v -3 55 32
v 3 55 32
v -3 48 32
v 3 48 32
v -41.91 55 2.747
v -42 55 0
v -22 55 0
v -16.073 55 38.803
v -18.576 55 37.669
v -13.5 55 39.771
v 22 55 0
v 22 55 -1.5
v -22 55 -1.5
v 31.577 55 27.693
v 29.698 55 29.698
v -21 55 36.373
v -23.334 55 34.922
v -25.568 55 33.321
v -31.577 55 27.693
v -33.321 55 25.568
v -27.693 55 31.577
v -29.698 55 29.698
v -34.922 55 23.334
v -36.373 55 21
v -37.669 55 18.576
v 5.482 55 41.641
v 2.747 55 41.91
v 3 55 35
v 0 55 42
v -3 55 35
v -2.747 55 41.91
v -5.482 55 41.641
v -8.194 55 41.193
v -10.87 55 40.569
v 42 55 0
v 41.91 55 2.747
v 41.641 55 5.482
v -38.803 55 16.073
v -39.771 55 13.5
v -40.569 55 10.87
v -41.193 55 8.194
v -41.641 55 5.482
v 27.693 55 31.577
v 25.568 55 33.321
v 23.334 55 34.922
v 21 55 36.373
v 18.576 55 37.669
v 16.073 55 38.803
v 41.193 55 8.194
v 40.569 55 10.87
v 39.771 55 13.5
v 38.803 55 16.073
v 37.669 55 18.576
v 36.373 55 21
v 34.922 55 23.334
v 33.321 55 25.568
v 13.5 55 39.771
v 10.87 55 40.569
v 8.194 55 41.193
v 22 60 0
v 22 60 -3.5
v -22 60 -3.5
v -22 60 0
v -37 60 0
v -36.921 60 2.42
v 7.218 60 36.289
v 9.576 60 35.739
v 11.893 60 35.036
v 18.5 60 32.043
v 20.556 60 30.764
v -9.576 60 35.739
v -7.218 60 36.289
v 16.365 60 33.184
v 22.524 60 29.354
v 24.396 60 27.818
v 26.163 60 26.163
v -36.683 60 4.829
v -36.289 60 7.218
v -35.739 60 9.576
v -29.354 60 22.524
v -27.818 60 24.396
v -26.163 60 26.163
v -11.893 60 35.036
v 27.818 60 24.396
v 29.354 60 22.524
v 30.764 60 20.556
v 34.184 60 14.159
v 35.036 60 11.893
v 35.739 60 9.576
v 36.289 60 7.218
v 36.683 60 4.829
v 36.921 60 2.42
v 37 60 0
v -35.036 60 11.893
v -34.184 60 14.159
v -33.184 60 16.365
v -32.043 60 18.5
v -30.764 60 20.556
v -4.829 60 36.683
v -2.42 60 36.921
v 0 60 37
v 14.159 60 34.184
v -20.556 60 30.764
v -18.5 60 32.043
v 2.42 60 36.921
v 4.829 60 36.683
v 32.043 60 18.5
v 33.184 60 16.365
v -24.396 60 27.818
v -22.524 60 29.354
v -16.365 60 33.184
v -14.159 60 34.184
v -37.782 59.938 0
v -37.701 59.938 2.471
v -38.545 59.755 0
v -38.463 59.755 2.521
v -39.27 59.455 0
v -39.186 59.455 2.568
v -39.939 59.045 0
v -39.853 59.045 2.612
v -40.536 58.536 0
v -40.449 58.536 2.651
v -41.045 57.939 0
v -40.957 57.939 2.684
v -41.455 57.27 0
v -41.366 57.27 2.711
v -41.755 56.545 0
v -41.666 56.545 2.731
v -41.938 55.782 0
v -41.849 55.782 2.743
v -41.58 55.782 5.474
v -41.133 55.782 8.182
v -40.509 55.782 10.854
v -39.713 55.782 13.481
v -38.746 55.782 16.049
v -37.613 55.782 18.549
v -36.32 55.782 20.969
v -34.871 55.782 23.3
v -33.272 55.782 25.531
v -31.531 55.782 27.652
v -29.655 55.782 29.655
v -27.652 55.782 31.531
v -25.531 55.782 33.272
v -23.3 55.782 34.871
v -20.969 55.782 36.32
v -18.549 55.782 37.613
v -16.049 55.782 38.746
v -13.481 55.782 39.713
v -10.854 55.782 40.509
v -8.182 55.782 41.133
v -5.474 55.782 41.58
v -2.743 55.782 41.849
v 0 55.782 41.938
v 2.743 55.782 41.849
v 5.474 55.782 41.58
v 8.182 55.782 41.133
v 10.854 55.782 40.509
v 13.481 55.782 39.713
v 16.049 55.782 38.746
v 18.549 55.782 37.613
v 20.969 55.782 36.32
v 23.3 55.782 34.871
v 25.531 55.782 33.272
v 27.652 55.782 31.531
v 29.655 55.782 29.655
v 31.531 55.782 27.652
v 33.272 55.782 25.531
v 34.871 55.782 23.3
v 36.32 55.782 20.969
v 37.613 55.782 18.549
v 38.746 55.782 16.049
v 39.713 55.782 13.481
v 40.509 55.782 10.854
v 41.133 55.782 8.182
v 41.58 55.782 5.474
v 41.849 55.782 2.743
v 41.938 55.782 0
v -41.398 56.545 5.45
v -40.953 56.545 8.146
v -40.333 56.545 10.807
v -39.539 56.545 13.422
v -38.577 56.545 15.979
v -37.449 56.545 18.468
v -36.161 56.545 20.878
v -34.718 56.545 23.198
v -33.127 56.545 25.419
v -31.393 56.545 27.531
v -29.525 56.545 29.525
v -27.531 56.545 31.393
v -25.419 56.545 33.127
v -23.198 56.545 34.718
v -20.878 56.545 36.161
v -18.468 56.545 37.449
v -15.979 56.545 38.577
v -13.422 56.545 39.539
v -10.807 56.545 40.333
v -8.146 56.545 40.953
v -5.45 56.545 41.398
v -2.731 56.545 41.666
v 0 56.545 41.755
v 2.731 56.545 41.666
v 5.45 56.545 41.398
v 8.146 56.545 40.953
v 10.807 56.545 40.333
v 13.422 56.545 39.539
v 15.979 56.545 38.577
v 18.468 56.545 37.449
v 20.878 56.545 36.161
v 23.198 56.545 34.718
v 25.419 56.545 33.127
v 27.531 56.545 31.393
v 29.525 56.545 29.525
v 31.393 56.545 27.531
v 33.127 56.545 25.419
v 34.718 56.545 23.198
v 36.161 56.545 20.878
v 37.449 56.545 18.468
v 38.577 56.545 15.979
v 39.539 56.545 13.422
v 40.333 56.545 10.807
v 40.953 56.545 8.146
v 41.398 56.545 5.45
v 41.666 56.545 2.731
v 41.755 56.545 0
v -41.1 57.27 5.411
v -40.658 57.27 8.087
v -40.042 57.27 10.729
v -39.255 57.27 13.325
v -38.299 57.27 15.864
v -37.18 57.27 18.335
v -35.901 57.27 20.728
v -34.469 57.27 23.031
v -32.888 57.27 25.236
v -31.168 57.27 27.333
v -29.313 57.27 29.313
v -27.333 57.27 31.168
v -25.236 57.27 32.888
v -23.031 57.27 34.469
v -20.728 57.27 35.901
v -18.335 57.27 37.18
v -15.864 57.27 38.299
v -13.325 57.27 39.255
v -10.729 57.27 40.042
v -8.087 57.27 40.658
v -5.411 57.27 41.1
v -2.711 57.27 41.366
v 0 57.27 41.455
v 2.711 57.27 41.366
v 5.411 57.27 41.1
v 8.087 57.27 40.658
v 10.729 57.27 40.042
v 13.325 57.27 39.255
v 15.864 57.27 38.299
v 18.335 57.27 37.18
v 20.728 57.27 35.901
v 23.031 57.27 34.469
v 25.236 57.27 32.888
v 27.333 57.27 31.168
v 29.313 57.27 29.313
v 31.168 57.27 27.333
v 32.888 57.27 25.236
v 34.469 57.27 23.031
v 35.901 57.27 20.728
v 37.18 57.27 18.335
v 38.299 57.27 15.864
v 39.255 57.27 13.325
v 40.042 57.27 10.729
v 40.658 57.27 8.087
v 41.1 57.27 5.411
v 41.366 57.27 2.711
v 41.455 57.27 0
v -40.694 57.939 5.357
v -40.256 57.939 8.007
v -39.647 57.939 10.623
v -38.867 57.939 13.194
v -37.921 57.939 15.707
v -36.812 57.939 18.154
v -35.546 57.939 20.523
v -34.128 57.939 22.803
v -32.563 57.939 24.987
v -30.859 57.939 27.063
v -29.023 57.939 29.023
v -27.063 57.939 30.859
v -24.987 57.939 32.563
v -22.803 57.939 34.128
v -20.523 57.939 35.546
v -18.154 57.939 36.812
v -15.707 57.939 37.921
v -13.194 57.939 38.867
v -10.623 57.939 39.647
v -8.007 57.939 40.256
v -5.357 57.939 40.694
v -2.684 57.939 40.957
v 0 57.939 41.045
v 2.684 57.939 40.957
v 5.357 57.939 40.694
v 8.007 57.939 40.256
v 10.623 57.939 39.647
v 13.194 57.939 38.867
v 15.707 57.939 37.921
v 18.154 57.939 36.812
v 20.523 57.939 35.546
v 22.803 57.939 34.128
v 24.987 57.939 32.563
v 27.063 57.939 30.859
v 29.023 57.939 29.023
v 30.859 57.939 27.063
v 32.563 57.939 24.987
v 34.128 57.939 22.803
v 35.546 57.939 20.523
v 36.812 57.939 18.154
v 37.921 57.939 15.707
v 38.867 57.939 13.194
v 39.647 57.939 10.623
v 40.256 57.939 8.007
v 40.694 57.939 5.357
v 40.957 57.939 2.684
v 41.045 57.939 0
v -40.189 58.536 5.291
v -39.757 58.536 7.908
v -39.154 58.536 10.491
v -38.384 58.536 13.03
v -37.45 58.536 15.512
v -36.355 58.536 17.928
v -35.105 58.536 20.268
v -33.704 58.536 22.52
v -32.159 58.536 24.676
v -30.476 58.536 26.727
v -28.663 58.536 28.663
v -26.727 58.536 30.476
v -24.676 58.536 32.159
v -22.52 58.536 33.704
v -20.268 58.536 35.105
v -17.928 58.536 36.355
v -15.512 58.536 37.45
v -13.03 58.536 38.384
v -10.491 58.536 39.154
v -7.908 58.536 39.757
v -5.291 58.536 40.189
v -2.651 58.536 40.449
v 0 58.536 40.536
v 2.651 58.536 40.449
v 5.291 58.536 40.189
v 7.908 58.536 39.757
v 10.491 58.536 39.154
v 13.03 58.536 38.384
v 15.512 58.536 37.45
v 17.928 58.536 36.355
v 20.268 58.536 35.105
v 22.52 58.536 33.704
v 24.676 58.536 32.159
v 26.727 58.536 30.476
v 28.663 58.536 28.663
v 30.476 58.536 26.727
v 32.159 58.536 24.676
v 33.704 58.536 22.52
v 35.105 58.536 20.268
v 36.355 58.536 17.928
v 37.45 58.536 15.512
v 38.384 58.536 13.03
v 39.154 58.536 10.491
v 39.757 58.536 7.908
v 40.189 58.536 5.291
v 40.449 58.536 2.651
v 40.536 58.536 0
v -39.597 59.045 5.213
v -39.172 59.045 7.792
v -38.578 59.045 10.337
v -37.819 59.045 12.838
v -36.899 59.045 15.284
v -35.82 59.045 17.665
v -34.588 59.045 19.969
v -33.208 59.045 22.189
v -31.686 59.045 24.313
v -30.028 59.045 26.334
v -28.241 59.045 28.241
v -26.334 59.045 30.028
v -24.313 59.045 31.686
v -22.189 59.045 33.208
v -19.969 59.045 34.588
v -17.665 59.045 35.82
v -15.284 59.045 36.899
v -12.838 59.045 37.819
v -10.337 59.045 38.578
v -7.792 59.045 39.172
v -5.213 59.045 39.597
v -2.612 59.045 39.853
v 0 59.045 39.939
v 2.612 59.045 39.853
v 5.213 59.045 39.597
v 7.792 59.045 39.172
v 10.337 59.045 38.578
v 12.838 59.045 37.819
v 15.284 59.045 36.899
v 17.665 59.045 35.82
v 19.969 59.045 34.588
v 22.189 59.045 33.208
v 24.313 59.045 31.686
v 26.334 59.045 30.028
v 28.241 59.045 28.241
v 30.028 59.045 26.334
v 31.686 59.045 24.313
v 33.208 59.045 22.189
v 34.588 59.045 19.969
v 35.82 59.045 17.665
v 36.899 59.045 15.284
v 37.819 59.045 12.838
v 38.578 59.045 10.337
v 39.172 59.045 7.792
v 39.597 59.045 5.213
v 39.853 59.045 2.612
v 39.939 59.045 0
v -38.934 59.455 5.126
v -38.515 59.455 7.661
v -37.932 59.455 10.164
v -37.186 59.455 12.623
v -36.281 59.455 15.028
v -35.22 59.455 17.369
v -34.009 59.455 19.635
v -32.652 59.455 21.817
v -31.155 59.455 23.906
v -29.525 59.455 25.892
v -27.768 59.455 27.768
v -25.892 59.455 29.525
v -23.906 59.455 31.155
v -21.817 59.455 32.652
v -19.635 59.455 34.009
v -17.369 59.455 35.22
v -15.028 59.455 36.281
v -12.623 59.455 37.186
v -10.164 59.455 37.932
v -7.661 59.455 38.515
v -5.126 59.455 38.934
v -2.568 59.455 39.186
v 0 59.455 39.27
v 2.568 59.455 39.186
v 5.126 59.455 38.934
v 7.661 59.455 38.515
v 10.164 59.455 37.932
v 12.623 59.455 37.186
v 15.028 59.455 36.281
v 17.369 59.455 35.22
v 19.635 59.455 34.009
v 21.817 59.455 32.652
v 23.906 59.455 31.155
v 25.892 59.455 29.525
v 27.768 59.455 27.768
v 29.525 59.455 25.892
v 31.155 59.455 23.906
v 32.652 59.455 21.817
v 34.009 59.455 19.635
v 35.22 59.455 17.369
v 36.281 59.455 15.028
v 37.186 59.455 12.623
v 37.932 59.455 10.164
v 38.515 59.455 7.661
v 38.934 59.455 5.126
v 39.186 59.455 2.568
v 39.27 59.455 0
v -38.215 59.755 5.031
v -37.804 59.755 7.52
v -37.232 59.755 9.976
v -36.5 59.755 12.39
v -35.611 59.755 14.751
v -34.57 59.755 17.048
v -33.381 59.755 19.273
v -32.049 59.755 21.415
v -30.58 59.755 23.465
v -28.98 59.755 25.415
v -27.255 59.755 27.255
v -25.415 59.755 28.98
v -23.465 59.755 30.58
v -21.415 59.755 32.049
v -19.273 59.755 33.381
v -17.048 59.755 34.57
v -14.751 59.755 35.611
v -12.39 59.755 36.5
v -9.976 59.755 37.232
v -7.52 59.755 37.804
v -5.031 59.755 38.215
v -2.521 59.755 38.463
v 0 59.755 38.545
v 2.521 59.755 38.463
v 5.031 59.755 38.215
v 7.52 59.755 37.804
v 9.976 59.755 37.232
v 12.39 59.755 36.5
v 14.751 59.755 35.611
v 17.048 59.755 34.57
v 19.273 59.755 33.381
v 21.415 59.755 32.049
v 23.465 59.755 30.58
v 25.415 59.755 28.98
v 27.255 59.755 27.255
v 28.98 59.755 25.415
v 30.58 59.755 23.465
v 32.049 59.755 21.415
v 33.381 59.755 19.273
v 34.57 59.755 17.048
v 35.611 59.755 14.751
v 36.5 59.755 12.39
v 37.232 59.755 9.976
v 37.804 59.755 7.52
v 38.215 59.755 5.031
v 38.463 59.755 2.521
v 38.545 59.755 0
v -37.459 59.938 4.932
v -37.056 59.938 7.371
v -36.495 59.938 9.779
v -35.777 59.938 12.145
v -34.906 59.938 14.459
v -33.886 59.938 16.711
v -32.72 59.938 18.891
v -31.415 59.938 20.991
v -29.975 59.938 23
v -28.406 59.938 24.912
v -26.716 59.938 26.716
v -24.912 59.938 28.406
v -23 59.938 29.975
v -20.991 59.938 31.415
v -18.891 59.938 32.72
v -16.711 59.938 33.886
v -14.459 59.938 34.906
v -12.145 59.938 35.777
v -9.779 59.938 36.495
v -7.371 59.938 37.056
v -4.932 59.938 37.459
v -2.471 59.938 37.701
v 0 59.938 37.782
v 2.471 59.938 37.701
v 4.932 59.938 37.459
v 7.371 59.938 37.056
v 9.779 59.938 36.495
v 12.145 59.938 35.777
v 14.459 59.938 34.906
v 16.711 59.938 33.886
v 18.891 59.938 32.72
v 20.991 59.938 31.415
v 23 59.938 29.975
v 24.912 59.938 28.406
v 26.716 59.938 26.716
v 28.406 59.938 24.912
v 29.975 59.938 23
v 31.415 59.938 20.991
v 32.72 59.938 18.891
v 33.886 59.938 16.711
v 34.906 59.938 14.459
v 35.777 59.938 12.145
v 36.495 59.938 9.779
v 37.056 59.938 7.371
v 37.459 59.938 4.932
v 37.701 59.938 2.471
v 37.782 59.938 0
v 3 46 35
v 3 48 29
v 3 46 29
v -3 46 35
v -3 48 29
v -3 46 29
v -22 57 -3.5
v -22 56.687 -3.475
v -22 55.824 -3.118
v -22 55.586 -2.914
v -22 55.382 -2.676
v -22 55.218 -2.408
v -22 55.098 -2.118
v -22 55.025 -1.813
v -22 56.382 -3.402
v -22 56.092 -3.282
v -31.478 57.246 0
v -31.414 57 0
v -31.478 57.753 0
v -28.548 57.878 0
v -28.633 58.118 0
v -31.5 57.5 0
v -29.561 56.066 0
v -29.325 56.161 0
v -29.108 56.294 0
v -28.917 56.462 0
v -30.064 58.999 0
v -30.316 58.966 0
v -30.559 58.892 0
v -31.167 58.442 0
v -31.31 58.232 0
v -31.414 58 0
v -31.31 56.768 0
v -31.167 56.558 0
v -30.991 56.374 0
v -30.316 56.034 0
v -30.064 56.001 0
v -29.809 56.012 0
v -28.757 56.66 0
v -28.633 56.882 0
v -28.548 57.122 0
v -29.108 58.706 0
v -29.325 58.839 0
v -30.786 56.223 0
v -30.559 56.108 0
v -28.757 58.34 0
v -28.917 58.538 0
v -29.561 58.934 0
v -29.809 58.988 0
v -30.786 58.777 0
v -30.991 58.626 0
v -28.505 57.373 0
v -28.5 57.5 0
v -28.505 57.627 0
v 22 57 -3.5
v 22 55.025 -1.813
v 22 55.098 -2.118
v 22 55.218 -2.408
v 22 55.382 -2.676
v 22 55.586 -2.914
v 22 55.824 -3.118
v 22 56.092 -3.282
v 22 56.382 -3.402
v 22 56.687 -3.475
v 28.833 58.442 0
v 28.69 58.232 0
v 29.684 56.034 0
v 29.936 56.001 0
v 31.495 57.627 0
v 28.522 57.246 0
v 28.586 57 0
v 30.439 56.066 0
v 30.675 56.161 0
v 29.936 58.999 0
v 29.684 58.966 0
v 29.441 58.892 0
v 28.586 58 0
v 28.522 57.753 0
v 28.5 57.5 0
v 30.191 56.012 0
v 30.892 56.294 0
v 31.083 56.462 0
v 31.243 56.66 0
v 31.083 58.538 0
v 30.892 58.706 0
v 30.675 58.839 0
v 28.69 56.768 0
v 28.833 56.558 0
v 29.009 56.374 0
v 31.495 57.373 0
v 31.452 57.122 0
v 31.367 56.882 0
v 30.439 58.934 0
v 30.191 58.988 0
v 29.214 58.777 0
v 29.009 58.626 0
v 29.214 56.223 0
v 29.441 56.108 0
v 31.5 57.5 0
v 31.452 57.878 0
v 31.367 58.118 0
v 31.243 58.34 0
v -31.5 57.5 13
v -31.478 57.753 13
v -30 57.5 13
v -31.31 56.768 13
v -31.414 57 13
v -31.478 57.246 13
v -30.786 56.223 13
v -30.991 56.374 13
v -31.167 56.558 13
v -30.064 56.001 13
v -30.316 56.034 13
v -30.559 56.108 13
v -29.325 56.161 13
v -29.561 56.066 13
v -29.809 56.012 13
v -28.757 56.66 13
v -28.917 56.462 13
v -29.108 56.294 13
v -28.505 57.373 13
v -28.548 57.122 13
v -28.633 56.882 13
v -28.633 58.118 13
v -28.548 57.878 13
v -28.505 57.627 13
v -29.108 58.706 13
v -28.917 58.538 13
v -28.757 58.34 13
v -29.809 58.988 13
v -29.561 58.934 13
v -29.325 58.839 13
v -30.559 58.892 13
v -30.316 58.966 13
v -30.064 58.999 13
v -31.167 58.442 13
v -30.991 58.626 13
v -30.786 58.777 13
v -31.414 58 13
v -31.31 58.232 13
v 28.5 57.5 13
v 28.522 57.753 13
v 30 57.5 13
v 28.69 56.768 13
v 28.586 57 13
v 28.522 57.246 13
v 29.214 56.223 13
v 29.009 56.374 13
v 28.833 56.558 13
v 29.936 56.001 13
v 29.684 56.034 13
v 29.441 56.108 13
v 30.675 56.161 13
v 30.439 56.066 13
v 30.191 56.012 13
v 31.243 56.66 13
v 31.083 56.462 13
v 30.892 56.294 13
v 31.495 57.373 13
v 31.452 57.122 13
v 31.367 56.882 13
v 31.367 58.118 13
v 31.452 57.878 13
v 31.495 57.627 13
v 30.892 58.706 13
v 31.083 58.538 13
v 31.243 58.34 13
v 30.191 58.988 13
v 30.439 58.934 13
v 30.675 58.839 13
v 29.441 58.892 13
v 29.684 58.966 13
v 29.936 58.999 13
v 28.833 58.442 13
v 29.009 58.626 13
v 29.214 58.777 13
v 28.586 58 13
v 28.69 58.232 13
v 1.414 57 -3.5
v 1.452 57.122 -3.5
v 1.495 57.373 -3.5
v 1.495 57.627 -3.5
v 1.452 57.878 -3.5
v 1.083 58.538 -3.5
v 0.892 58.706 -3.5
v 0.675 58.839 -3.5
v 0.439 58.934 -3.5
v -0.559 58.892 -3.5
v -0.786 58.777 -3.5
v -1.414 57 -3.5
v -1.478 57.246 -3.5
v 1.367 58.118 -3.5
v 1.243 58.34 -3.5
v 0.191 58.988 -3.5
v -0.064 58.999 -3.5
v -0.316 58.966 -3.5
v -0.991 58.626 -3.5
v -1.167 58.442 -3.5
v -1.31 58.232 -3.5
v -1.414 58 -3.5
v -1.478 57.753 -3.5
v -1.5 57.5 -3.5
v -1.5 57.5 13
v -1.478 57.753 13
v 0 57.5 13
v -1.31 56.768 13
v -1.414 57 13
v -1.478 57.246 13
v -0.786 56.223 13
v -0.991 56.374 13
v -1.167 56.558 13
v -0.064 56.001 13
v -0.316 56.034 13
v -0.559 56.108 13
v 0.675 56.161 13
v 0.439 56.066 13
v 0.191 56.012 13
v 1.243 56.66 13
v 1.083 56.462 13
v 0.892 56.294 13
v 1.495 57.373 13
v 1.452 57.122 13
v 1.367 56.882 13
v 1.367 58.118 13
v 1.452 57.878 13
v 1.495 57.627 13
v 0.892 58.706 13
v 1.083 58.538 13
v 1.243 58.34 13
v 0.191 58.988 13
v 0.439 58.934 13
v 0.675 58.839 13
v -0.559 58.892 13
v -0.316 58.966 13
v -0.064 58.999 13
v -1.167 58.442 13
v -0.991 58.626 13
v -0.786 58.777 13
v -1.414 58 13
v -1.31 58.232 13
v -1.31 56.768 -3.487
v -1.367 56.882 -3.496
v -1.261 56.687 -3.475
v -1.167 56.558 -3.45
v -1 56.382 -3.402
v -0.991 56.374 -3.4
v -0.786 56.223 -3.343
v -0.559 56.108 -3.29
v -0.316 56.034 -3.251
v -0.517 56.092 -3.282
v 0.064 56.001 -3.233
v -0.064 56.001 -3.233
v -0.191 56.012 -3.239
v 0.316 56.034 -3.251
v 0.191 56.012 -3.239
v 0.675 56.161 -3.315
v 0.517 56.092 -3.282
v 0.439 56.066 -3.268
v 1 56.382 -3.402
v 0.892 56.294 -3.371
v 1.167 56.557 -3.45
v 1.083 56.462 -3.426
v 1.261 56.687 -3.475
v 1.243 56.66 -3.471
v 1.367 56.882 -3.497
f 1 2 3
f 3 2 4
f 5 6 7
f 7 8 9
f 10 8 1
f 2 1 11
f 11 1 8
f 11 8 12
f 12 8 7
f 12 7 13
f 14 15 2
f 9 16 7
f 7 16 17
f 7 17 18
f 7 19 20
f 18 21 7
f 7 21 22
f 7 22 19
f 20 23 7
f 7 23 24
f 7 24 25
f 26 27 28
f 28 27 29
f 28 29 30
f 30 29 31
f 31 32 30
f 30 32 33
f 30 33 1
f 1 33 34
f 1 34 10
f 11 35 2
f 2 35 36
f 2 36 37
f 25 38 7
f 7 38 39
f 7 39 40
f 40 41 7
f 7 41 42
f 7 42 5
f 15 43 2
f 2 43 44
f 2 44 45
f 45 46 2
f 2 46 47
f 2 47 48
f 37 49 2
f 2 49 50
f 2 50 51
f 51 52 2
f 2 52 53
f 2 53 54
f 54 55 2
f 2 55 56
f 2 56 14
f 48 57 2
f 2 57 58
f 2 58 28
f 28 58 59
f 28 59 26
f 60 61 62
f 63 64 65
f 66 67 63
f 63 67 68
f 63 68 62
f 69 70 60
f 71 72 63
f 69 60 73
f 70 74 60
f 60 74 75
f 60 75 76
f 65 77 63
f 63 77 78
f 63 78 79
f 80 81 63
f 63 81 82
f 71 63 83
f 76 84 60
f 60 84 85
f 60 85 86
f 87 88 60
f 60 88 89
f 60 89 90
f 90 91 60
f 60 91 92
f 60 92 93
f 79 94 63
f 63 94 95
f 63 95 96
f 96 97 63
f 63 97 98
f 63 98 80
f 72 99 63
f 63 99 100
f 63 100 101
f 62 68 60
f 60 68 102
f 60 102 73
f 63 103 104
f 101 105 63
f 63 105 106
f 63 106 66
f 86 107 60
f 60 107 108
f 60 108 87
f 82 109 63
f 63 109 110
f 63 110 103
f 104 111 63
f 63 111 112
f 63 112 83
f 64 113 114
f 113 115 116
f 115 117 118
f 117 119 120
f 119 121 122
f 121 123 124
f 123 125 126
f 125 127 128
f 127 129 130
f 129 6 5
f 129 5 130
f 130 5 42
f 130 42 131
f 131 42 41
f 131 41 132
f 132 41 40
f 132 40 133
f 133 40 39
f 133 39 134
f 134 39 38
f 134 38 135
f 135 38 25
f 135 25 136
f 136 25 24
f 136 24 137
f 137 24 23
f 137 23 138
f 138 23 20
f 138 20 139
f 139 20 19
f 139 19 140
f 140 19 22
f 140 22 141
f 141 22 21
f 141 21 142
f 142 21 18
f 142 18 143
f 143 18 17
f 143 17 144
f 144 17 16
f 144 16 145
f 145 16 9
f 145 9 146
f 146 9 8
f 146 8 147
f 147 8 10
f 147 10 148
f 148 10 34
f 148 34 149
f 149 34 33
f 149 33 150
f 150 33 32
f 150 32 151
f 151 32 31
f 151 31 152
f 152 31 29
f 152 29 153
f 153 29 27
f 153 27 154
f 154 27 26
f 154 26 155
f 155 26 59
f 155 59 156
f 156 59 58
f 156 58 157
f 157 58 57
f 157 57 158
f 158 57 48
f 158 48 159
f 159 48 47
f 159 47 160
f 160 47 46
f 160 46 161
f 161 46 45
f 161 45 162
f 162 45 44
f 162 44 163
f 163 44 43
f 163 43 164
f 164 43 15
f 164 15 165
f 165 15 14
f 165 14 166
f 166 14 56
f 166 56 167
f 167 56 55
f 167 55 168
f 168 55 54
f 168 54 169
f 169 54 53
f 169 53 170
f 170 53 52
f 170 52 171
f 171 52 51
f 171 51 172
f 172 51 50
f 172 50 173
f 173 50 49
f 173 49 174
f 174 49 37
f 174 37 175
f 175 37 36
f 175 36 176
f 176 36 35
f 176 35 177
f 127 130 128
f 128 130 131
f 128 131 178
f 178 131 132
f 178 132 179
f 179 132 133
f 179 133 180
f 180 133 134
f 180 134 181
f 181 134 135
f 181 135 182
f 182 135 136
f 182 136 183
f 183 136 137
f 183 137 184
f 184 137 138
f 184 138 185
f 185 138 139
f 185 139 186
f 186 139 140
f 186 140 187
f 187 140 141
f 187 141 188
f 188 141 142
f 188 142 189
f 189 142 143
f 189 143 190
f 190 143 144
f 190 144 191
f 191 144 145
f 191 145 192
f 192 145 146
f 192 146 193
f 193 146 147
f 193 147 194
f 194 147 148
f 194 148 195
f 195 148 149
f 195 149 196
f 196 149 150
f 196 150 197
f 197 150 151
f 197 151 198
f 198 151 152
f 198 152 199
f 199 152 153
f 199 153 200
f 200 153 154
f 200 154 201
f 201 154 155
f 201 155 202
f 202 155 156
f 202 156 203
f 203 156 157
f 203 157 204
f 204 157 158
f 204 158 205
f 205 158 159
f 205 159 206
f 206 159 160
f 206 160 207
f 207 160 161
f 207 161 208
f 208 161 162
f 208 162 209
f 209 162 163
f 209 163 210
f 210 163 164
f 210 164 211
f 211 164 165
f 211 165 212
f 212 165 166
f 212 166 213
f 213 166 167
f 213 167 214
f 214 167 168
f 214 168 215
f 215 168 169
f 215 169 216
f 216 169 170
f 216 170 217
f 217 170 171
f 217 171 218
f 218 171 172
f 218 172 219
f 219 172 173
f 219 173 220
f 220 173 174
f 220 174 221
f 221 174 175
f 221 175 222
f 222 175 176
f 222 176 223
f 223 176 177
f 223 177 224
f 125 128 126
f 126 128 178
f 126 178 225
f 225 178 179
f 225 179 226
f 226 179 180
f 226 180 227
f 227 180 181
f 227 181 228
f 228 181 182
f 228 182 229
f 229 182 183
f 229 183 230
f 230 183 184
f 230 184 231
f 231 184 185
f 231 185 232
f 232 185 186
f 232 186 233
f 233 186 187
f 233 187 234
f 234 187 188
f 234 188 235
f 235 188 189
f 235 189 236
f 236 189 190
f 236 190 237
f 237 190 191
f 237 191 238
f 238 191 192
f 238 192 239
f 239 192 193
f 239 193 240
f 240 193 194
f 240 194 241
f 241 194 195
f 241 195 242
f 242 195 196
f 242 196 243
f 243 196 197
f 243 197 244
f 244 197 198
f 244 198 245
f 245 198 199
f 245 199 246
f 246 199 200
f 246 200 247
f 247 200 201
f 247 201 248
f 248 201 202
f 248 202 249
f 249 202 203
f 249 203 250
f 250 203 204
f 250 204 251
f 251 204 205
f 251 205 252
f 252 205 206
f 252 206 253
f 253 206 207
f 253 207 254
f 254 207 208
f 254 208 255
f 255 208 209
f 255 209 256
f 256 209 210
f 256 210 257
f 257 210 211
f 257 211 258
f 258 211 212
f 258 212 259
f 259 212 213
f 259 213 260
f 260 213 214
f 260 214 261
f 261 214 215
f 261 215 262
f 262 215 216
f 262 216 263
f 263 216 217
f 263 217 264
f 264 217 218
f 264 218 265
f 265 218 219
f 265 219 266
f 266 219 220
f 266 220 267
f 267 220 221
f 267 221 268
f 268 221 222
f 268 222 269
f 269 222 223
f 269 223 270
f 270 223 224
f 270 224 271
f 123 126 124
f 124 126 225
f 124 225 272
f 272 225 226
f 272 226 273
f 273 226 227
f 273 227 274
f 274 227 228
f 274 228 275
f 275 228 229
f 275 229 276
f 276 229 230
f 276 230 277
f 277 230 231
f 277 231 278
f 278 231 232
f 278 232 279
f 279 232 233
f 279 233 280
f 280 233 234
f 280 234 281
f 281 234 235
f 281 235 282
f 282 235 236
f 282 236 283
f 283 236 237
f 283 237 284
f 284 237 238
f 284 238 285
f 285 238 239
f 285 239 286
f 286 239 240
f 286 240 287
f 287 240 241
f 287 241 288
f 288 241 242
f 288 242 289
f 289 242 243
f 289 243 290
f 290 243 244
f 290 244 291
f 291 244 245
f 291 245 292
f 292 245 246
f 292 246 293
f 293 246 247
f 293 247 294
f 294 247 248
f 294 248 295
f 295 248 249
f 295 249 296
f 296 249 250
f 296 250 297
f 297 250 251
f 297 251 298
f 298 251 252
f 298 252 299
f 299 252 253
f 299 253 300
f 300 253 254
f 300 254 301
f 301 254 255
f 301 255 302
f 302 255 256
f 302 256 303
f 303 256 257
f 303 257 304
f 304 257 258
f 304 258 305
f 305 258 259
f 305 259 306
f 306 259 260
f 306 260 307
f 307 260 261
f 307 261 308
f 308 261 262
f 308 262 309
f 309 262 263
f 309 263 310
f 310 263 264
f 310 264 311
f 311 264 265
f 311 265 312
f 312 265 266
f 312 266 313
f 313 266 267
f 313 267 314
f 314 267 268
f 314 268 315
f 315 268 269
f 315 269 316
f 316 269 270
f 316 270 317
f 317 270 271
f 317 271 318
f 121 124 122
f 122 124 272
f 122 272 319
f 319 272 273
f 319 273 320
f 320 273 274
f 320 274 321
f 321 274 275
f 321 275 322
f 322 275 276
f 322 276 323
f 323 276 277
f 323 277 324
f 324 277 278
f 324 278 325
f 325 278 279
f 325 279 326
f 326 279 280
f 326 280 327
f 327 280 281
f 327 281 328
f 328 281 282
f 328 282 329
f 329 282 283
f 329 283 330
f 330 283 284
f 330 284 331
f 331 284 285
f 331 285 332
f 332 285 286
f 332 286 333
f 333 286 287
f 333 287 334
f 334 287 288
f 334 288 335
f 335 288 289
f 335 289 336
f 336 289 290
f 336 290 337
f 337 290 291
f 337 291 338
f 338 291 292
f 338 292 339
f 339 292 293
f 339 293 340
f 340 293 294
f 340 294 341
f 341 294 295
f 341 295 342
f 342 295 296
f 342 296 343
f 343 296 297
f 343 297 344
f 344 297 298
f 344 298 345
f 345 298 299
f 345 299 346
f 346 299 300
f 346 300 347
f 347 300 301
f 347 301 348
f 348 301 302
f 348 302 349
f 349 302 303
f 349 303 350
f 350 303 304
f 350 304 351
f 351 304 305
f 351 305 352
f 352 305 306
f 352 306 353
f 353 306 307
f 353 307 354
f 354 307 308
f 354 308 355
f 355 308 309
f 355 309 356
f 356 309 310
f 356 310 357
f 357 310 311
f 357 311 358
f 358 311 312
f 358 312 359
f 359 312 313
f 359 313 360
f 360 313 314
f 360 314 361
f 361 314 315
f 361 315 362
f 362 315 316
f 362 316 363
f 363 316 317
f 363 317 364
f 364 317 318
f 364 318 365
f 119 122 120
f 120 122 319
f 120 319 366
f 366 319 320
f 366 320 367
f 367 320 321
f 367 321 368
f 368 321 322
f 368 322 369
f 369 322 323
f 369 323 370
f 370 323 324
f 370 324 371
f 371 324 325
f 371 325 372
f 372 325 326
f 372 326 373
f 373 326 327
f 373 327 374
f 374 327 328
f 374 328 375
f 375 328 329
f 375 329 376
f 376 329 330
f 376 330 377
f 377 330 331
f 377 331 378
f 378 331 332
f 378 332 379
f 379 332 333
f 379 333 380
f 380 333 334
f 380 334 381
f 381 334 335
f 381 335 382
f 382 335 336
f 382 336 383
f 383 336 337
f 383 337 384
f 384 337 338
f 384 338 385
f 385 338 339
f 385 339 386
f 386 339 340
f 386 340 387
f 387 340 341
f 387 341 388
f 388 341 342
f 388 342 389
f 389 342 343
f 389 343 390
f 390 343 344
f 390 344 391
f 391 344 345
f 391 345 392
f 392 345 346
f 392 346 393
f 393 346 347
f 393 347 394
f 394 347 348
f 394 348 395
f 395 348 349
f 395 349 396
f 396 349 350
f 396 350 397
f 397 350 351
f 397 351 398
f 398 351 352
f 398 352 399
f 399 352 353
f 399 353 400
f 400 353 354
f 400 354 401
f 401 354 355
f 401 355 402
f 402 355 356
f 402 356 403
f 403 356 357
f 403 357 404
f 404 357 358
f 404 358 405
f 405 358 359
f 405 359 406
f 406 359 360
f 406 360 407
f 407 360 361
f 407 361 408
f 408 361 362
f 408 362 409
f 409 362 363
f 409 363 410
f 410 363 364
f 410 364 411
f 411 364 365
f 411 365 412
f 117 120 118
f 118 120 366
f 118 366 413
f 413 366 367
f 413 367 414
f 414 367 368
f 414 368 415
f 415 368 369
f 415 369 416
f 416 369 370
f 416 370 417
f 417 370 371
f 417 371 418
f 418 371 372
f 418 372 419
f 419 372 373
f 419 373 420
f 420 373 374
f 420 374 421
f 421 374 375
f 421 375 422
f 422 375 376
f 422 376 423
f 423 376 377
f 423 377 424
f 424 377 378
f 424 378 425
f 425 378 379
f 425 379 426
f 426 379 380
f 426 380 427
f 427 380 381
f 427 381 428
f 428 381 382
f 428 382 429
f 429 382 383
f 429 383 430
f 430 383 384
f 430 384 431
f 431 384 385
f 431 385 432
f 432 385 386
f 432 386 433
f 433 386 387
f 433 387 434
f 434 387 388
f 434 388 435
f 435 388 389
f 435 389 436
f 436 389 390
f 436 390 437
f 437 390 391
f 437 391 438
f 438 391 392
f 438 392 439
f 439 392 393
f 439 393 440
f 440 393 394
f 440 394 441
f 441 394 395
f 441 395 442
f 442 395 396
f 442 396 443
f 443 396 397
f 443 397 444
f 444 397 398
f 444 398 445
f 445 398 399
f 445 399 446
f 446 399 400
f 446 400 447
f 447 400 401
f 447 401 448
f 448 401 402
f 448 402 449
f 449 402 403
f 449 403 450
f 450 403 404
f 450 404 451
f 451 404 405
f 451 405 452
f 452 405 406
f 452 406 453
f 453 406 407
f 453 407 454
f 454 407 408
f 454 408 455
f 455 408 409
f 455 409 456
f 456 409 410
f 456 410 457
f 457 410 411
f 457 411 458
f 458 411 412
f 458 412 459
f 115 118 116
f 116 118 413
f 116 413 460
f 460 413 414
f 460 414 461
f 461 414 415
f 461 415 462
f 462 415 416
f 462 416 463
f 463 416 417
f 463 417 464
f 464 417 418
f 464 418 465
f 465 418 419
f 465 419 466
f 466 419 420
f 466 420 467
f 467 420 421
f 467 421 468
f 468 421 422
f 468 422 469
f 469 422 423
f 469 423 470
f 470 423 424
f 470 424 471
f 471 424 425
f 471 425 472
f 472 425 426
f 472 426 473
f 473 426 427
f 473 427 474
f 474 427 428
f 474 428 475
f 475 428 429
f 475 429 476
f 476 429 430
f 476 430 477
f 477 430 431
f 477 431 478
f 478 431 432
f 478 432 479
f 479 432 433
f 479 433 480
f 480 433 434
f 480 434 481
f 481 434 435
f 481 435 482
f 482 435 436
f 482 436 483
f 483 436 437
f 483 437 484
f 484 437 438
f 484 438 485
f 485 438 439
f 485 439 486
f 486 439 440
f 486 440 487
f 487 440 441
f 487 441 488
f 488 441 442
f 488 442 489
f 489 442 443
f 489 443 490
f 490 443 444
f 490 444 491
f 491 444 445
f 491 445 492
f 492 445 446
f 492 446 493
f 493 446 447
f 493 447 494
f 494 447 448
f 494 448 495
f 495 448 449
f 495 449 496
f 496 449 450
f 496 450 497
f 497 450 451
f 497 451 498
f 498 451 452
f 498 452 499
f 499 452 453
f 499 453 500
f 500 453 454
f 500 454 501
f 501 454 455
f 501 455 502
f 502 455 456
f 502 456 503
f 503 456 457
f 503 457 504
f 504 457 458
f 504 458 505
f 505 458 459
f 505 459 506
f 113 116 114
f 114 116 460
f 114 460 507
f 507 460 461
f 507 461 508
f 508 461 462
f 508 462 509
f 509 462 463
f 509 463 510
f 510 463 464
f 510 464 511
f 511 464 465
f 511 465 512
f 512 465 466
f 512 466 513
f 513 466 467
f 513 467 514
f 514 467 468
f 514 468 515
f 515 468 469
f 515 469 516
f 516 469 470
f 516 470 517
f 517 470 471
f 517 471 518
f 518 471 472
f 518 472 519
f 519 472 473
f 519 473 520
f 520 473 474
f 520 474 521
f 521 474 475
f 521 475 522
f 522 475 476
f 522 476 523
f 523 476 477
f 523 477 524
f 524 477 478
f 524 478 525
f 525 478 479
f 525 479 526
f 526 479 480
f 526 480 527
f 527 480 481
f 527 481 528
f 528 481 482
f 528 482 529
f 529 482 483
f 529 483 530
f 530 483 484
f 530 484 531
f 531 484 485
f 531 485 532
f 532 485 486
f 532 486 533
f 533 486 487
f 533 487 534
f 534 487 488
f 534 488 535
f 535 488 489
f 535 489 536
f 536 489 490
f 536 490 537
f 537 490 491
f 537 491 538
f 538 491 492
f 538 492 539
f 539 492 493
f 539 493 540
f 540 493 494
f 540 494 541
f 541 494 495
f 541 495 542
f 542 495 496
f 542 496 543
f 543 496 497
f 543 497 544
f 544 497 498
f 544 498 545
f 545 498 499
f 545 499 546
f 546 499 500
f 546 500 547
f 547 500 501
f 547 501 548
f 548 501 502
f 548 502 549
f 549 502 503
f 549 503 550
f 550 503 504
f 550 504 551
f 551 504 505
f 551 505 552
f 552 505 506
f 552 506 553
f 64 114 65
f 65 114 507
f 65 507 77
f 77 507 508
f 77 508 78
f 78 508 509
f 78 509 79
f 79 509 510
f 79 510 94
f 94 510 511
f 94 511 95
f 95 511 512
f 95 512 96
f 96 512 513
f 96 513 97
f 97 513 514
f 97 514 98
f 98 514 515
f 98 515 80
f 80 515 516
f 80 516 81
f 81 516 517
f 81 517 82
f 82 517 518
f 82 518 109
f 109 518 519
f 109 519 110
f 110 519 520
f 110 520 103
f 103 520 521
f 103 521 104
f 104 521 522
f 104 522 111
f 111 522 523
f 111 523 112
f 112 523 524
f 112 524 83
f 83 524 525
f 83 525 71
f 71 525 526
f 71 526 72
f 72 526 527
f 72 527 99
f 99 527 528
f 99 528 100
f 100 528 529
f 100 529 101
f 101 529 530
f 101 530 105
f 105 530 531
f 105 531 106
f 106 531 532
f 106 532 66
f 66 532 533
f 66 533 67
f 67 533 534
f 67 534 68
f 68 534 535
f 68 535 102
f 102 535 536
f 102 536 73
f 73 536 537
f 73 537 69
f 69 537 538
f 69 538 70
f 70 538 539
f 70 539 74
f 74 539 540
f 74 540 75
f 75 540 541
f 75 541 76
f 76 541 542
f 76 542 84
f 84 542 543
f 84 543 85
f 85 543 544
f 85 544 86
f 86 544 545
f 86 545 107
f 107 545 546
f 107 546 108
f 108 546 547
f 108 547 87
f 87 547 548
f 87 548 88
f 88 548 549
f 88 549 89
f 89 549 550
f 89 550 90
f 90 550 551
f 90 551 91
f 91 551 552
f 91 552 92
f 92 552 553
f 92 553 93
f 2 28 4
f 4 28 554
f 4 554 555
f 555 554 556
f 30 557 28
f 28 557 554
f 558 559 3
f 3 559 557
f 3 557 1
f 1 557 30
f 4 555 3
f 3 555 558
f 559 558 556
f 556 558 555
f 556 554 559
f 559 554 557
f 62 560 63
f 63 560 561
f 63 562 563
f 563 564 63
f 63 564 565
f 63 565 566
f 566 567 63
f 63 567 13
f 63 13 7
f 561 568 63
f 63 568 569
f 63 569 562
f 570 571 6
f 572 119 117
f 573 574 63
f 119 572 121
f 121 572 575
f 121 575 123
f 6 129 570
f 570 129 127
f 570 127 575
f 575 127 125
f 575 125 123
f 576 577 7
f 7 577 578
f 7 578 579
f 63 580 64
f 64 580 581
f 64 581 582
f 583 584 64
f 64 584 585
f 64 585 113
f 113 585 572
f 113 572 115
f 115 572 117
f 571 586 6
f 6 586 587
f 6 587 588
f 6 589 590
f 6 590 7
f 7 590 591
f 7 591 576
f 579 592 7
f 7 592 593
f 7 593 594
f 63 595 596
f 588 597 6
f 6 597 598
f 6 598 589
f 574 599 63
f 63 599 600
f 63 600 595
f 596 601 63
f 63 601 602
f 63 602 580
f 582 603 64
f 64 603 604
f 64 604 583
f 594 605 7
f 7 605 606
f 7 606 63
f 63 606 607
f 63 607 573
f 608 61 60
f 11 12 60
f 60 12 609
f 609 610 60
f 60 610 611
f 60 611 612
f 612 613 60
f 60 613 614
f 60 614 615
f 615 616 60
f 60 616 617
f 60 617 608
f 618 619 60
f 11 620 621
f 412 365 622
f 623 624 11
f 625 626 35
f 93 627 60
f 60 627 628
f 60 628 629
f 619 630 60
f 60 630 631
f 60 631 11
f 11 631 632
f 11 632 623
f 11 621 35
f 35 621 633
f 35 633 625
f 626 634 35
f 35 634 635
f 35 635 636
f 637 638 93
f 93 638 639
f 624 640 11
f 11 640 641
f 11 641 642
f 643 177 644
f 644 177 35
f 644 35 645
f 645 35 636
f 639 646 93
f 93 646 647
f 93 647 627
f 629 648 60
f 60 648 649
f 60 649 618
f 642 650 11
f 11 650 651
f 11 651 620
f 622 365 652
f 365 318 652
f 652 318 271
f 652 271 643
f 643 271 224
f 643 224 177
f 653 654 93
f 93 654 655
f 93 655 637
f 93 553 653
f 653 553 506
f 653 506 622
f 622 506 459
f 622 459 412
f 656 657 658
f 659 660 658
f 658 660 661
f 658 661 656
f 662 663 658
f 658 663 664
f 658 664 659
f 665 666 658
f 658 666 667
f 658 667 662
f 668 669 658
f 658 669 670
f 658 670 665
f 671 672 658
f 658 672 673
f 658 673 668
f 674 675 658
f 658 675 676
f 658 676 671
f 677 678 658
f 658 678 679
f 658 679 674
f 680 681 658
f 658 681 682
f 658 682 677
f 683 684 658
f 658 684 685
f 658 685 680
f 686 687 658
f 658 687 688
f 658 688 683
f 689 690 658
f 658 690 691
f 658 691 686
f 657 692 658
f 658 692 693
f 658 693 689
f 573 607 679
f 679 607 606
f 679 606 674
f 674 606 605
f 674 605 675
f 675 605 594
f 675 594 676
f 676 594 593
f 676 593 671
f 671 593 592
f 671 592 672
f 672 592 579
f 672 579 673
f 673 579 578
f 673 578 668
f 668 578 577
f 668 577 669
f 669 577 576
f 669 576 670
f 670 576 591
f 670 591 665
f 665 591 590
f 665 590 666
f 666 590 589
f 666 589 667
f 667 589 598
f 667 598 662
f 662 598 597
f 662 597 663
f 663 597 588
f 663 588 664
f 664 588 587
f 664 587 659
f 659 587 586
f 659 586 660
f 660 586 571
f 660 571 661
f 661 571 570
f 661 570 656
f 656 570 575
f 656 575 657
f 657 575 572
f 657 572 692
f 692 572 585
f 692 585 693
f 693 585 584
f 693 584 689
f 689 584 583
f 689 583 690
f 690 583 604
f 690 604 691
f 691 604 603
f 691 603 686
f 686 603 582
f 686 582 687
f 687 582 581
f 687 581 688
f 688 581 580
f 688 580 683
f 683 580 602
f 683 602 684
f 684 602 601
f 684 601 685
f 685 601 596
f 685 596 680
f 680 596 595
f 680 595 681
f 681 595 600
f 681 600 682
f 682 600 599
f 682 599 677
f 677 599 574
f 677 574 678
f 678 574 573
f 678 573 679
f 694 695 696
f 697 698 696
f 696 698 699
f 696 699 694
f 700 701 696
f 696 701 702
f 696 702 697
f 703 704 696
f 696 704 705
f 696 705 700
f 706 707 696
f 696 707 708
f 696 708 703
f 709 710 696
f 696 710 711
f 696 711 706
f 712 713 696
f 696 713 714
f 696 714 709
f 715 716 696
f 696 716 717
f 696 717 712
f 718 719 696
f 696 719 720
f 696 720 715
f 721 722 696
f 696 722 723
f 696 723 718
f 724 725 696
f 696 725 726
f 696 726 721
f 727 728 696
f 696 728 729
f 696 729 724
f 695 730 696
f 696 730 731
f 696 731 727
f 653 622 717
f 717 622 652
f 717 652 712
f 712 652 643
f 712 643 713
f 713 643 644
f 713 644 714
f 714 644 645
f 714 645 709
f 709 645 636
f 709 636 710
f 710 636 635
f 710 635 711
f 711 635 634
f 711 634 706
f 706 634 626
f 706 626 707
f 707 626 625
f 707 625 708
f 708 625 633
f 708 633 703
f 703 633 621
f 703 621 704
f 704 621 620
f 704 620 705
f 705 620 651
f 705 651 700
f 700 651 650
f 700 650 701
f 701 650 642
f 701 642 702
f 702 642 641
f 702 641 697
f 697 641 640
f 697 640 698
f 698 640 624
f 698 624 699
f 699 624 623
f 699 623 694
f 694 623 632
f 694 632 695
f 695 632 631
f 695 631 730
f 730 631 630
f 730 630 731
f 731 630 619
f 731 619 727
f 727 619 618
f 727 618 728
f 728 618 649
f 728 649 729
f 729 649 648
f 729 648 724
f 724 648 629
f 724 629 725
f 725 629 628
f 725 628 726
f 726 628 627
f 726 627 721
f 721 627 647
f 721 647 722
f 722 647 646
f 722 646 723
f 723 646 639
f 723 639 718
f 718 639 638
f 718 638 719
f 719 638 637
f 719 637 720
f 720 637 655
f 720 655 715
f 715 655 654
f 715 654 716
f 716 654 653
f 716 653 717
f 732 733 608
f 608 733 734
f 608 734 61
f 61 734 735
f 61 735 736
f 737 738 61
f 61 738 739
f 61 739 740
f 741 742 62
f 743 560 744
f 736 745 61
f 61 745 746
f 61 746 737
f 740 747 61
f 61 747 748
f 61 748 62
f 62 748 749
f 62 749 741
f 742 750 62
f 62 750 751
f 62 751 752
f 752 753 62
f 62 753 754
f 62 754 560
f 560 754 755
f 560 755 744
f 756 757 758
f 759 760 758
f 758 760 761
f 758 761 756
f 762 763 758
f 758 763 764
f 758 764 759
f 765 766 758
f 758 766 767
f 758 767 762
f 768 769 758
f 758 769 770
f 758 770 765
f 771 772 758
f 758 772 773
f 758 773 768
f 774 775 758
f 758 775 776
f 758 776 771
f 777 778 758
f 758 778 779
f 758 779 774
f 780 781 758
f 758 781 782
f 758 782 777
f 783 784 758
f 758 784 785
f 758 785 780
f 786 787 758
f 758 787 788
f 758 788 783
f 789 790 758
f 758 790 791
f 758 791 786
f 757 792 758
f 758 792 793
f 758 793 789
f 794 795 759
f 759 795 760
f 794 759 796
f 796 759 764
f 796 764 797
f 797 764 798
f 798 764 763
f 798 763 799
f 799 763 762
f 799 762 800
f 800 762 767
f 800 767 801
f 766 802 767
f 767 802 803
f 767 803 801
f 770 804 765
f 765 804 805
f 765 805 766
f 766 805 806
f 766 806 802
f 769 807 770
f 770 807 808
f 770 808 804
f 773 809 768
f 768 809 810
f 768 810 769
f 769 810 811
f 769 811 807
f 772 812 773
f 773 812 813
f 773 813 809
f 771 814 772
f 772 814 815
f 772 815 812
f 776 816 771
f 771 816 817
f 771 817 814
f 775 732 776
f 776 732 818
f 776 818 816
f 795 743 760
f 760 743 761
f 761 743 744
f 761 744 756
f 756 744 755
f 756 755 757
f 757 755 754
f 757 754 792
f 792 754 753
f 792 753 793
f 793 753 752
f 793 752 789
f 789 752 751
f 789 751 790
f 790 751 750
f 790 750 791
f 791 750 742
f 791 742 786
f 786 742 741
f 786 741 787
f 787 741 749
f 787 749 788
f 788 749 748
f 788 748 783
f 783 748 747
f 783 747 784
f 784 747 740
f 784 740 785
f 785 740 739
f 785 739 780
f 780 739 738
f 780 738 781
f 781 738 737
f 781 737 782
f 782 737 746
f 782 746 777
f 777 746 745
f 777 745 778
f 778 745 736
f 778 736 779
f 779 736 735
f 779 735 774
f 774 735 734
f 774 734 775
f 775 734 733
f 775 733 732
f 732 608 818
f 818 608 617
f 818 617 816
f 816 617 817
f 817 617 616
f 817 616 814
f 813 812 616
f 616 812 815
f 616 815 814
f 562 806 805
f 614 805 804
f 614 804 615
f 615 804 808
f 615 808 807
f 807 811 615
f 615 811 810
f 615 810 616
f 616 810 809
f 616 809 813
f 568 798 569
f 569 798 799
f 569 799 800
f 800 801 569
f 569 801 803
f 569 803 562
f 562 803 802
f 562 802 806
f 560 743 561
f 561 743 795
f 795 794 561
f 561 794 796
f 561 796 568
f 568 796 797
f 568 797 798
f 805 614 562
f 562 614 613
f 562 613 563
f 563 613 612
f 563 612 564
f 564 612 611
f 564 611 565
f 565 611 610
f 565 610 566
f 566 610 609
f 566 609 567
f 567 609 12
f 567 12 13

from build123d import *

# Parameters (mm, degrees)
CUT_EXTRUDE1_DEPTH       = 5
CUT_EXTRUDE3_DEPTH       = 45
SKETCH8_R                = 40
CUT_EXTRUDE4_DEPTH       = 32
SKETCH9_R                = 32
SKETCH9_R_2              = 24.5
CUT_EXTRUDE5_DEPTH       = 14
SKETCH10_R               = 26
CUT_EXTRUDE6_DEPTH       = 14
FILLET1_R                = 7
FILLET2_R                = 7
CUT_REVOLVE1_START       = 22
CUT_REVOLVE1_DEPTH       = 30.5
CUT_EXTRUDE12_DEPTH      = 5
SKETCH18_W               = 13
SKETCH18_H               = 8
CUT_EXTRUDE13_DEPTH      = 5
INTERSECT1_OUTLINE_R     = 42
INTERSECT1_DEPTH         = 55
SKETCH20_W               = 6
SKETCH20_H               = 3
BOSS_EXTRUDE1_DEPTH      = 8
BOSS_EXTRUDE2_DEPTH      = 1
BOSS_EXTRUDE2_DEPTH_BACK = 1
SKETCH21_W               = 6
SKETCH21_H               = 6
BOSS_EXTRUDE3_DEPTH      = 7
SKETCH19_R               = 1.5
CUT_EXTRUDE14_DEPTH      = 20
SKETCH23_W               = 20
SKETCH23_H               = 7
CUT_EXTRUDE15_DEPTH      = 7
SKETCH24_W               = 44
SKETCH24_H               = 3.5
CUT_EXTRUDE16_DEPTH      = 5
FILLET3_R                = 2


# Read off the part's stored shape, not the designer's step: Cut-Revolve1, Intersect1
with BuildPart() as part:
    # Sketch1 → Revolve1 (revolve)
    with BuildSketch(Plane.XY, mode=Mode.PRIVATE) as revolve1_sk:
        with BuildLine():
            Line((22.5, 0), (32, 0))
            ThreePointArc((32, 0), (33.414213562, 0.585786438), (34, 2))
            Line((34, 2), (34, 18))
            Line((34, 18), (40, 18))
            ThreePointArc((40, 18), (41.414213562, 18.585786438), (42, 20))
            Line((42, 20), (42, 55))
            ThreePointArc((42, 55), (40.535533906, 58.535533906), (37, 60))
            Line((37, 60), (0, 60))
            Line((0, 60), (0, 18))
            Line((0, 18), (22.5, 18))
            Line((22.5, 18), (22.5, 0))
        make_face()
    revolve(revolve1_sk.sketch.rotate(Axis((0, 2, 0), (0, 1, 0)), 90), axis=Axis((0, 2, 0), (0, 1, 0)))

    # Sketch5 → Cut-Extrude1 (cut)
    with BuildSketch(Plane(origin=(0, 60, 0), x_dir=(1, 0, 0), z_dir=(0, 1, 0))):
        with BuildLine():
            Line((-42, 0), (-40, 0))
            Line((-40, 0), (40, 0))
            Line((40, 0), (42, 0))
            ThreePointArc((42, 0), (0, 42), (-42, 0))
        make_face()
    extrude(amount=-CUT_EXTRUDE1_DEPTH, mode=Mode.SUBTRACT)

    # Sketch7 → Cut-Extrude3 (cut)
    with BuildSketch(Plane.XZ.offset(-18)):
        with BuildLine():
            Line((-21, 0), (21, 0))
            ThreePointArc((21, 0), (0, -21), (-21, 0))
        make_face()
    extrude(amount=-CUT_EXTRUDE3_DEPTH, mode=Mode.SUBTRACT)

    # Sketch8 → Cut-Extrude4 (cut)
    with BuildSketch(Plane(origin=(0, 52.5, 0), x_dir=(1, 0, 0), z_dir=(0, 1, 0))):
        with Locations(Location((0, 0, 0), (0, 0, 270))):
            Circle(SKETCH8_R)
        with BuildLine():
            Line((22.912878475, -2), (-22.912878475, -2))
            ThreePointArc((-22.912878475, -2), (0, 23), (22.912878475, -2))
        make_face(mode=Mode.SUBTRACT)
    extrude(amount=-CUT_EXTRUDE4_DEPTH, mode=Mode.SUBTRACT)

    # Sketch9 → Cut-Extrude5 (cut)
    with BuildSketch(Plane(origin=(0, 2, 0), x_dir=(-1, 0, 0), z_dir=(0, -1, 0))):
        with Locations(Location((0, 0, 0), (0, 0, 90))):
            Circle(SKETCH9_R)
        with Locations(Location((0, 0, 0), (0, 0, 90))):
            Circle(SKETCH9_R_2, mode=Mode.SUBTRACT)
    extrude(amount=-CUT_EXTRUDE5_DEPTH, mode=Mode.SUBTRACT)

    # Sketch10 → Cut-Extrude6 (cut)
    with BuildSketch(Plane(origin=(0, 2, 0), x_dir=(-1, 0, 0), z_dir=(0, -1, 0))):
        Circle(SKETCH10_R)
    extrude(amount=-CUT_EXTRUDE6_DEPTH, mode=Mode.SUBTRACT)

    # Fillet1
    fillet1_edges = [part.edges().sort_by_distance(p)[0] for p in [
        (21, 36.5, 0),
        (-21, 36.5, 0),
    ]]
    fillet(fillet1_edges, radius=FILLET1_R)

    # Fillet2
    fillet2_edges = [part.edges().sort_by_distance(p)[0] for p in [
        (-22.912878475, 36.5, 2),
        (22.912878475, 36.5, 2),
    ]]
    fillet(fillet2_edges, radius=FILLET2_R)

    # Cut-Revolve1 outline → Cut-Revolve1 (cut)
    with BuildSketch(Plane(origin=(0, 0, 0), x_dir=(1, 0, 0), z_dir=(0, 1, 0)).offset(CUT_REVOLVE1_START)):
        with BuildLine():
            Line((-34.641016151, -20), (-36.373066959, -21))
            ThreePointArc((-36.373066959, -21), (0, -42), (36.373066959, -21))
            Line((36.373066959, -21), (34.641016151, -20))
            ThreePointArc((34.641016151, -20), (0, -40), (-34.641016151, -20))
        make_face()
    extrude(amount=CUT_REVOLVE1_DEPTH, mode=Mode.SUBTRACT)

    # Sketch15 → Cut-Extrude12 (cut)
    with BuildSketch(Plane(origin=(0, 20.5, 0), x_dir=(1, 0, 0), z_dir=(0, 1, 0))):
        with BuildLine():
            Line((-28.124355653, -3.514579578), (-26.124355653, -3.514579578))
            ThreePointArc((-26.124355653, -3.514579578), (-24.710142091, -2.928793141), (-24.124355653, -1.514579578))
            Line((-24.124355653, -1.514579578), (-24.124355653, 8.485420422))
            ThreePointArc((-24.124355653, 8.485420422), (-24.710142091, 9.899633984), (-26.124355653, 10.485420422))
            Line((-26.124355653, 10.485420422), (-28.124355653, 10.485420422))
            ThreePointArc((-28.124355653, 10.485420422), (-29.538569215, 9.899633984), (-30.124355653, 8.485420422))
            Line((-30.124355653, 8.485420422), (-30.124355653, -1.514579578))
            ThreePointArc((-30.124355653, -1.514579578), (-29.538569215, -2.928793141), (-28.124355653, -3.514579578))
        make_face()
    extrude(amount=-CUT_EXTRUDE12_DEPTH, mode=Mode.SUBTRACT)

    # Sketch18 → Cut-Extrude13 (cut)
    with BuildSketch(Plane(origin=(0, 55, 0), x_dir=(1, 0, 0), z_dir=(0, 1, 0))):
        with Locations((0.796512215, 32.951769165)):
            Rectangle(SKETCH18_W, SKETCH18_H)
    extrude(amount=-CUT_EXTRUDE13_DEPTH, mode=Mode.SUBTRACT)

    # Intersect1 outline → Intersect1 (cut)
    with BuildSketch(Plane(origin=(0, 0, 0), x_dir=(1, 0, 0), z_dir=(0, 1, 0))):
        Circle(INTERSECT1_OUTLINE_R)
        with BuildLine():
            Line((12.124355653, 0), (-12.124355653, 0))
            ThreePointArc((-12.124355653, 0), (-18.186533479, 3.5), (-18.186533479, 10.5))
            ThreePointArc((-18.186533479, 10.5), (0, 21), (18.186533479, 10.5))
            ThreePointArc((18.186533479, 10.5), (18.186533479, 3.5), (12.124355653, 0))
        make_face(mode=Mode.SUBTRACT)
    extrude(amount=INTERSECT1_DEPTH, mode=Mode.SUBTRACT)

    # Sketch20 → Boss-Extrude1 (add)
    with BuildSketch(Plane.XZ.offset(-55)):
        with Locations((0, 33.5)):
            Rectangle(SKETCH20_W, SKETCH20_H)
    extrude(amount=BOSS_EXTRUDE1_DEPTH)

    # Sketch21 → Boss-Extrude2 (add, two sides: drawn at the far end of the back side and taken through both)
    with BuildSketch(Plane.XZ.offset(-47).offset(-BOSS_EXTRUDE2_DEPTH_BACK)):
        with Locations((0, 32)):
            Rectangle(SKETCH21_W, SKETCH21_H)
    extrude(amount=BOSS_EXTRUDE2_DEPTH + BOSS_EXTRUDE2_DEPTH_BACK)

    # Sketch22 → Boss-Extrude3 (add)
    with BuildSketch(Plane(origin=(0, 0, 0), x_dir=(-1, 0, 0), z_dir=(0, 0, -1))):
        with BuildLine():
            Line((-42, 55), (42, 55))
            ThreePointArc((42, 55), (40.535533906, 58.535533906), (37, 60))
            Line((37, 60), (-37, 60))
            ThreePointArc((-37, 60), (-40.535533906, 58.535533906), (-42, 55))
        make_face()
    extrude(amount=BOSS_EXTRUDE3_DEPTH)

    # Sketch19 → Cut-Extrude14 (cut)
    with BuildSketch(Plane(origin=(0, 0, -7), x_dir=(-1, 0, 0), z_dir=(0, 0, -1))):
        with Locations((0, 57.5)):
            Circle(SKETCH19_R)
        with Locations((-30, 57.5)):
            Circle(SKETCH19_R)
        with Locations((30, 57.5)):
            Circle(SKETCH19_R)
    extrude(amount=-CUT_EXTRUDE14_DEPTH, mode=Mode.SUBTRACT)

    # Sketch23 → Cut-Extrude15 (cut)
    with BuildSketch(Plane(origin=(0, 60, 0), x_dir=(1, 0, 0), z_dir=(0, 1, 0))):
        with Locations((-32, 3.5)):
            Rectangle(SKETCH23_W, SKETCH23_H)
        with Locations((32, 3.5)):
            Rectangle(SKETCH23_W, SKETCH23_H)
    extrude(amount=-CUT_EXTRUDE15_DEPTH, mode=Mode.SUBTRACT)

    # Sketch24 → Cut-Extrude16 (cut)
    with BuildSketch(Plane(origin=(0, 60, 0), x_dir=(1, 0, 0), z_dir=(0, 1, 0))):
        with Locations((0, 5.25)):
            Rectangle(SKETCH24_W, SKETCH24_H)
    extrude(amount=-CUT_EXTRUDE16_DEPTH, mode=Mode.SUBTRACT)

    # Fillet3
    # the kernel refuses this fillet: 2 mm, written as the material it takes off along each edge
    with BuildSketch(Plane(origin=(27, 55, -3.5), x_dir=(0, 0, 1), z_dir=(-1, 0, 0))) as fillet3_piece_1:
        with BuildLine():
            CenterArc((FILLET3_R, FILLET3_R), FILLET3_R, 180, 90)
            Line((0, FILLET3_R), (0, 0))
            Line((0, 0), (FILLET3_R, 0))
        make_face()
    extrude(amount=54, mode=Mode.SUBTRACT)


solid = part.part
